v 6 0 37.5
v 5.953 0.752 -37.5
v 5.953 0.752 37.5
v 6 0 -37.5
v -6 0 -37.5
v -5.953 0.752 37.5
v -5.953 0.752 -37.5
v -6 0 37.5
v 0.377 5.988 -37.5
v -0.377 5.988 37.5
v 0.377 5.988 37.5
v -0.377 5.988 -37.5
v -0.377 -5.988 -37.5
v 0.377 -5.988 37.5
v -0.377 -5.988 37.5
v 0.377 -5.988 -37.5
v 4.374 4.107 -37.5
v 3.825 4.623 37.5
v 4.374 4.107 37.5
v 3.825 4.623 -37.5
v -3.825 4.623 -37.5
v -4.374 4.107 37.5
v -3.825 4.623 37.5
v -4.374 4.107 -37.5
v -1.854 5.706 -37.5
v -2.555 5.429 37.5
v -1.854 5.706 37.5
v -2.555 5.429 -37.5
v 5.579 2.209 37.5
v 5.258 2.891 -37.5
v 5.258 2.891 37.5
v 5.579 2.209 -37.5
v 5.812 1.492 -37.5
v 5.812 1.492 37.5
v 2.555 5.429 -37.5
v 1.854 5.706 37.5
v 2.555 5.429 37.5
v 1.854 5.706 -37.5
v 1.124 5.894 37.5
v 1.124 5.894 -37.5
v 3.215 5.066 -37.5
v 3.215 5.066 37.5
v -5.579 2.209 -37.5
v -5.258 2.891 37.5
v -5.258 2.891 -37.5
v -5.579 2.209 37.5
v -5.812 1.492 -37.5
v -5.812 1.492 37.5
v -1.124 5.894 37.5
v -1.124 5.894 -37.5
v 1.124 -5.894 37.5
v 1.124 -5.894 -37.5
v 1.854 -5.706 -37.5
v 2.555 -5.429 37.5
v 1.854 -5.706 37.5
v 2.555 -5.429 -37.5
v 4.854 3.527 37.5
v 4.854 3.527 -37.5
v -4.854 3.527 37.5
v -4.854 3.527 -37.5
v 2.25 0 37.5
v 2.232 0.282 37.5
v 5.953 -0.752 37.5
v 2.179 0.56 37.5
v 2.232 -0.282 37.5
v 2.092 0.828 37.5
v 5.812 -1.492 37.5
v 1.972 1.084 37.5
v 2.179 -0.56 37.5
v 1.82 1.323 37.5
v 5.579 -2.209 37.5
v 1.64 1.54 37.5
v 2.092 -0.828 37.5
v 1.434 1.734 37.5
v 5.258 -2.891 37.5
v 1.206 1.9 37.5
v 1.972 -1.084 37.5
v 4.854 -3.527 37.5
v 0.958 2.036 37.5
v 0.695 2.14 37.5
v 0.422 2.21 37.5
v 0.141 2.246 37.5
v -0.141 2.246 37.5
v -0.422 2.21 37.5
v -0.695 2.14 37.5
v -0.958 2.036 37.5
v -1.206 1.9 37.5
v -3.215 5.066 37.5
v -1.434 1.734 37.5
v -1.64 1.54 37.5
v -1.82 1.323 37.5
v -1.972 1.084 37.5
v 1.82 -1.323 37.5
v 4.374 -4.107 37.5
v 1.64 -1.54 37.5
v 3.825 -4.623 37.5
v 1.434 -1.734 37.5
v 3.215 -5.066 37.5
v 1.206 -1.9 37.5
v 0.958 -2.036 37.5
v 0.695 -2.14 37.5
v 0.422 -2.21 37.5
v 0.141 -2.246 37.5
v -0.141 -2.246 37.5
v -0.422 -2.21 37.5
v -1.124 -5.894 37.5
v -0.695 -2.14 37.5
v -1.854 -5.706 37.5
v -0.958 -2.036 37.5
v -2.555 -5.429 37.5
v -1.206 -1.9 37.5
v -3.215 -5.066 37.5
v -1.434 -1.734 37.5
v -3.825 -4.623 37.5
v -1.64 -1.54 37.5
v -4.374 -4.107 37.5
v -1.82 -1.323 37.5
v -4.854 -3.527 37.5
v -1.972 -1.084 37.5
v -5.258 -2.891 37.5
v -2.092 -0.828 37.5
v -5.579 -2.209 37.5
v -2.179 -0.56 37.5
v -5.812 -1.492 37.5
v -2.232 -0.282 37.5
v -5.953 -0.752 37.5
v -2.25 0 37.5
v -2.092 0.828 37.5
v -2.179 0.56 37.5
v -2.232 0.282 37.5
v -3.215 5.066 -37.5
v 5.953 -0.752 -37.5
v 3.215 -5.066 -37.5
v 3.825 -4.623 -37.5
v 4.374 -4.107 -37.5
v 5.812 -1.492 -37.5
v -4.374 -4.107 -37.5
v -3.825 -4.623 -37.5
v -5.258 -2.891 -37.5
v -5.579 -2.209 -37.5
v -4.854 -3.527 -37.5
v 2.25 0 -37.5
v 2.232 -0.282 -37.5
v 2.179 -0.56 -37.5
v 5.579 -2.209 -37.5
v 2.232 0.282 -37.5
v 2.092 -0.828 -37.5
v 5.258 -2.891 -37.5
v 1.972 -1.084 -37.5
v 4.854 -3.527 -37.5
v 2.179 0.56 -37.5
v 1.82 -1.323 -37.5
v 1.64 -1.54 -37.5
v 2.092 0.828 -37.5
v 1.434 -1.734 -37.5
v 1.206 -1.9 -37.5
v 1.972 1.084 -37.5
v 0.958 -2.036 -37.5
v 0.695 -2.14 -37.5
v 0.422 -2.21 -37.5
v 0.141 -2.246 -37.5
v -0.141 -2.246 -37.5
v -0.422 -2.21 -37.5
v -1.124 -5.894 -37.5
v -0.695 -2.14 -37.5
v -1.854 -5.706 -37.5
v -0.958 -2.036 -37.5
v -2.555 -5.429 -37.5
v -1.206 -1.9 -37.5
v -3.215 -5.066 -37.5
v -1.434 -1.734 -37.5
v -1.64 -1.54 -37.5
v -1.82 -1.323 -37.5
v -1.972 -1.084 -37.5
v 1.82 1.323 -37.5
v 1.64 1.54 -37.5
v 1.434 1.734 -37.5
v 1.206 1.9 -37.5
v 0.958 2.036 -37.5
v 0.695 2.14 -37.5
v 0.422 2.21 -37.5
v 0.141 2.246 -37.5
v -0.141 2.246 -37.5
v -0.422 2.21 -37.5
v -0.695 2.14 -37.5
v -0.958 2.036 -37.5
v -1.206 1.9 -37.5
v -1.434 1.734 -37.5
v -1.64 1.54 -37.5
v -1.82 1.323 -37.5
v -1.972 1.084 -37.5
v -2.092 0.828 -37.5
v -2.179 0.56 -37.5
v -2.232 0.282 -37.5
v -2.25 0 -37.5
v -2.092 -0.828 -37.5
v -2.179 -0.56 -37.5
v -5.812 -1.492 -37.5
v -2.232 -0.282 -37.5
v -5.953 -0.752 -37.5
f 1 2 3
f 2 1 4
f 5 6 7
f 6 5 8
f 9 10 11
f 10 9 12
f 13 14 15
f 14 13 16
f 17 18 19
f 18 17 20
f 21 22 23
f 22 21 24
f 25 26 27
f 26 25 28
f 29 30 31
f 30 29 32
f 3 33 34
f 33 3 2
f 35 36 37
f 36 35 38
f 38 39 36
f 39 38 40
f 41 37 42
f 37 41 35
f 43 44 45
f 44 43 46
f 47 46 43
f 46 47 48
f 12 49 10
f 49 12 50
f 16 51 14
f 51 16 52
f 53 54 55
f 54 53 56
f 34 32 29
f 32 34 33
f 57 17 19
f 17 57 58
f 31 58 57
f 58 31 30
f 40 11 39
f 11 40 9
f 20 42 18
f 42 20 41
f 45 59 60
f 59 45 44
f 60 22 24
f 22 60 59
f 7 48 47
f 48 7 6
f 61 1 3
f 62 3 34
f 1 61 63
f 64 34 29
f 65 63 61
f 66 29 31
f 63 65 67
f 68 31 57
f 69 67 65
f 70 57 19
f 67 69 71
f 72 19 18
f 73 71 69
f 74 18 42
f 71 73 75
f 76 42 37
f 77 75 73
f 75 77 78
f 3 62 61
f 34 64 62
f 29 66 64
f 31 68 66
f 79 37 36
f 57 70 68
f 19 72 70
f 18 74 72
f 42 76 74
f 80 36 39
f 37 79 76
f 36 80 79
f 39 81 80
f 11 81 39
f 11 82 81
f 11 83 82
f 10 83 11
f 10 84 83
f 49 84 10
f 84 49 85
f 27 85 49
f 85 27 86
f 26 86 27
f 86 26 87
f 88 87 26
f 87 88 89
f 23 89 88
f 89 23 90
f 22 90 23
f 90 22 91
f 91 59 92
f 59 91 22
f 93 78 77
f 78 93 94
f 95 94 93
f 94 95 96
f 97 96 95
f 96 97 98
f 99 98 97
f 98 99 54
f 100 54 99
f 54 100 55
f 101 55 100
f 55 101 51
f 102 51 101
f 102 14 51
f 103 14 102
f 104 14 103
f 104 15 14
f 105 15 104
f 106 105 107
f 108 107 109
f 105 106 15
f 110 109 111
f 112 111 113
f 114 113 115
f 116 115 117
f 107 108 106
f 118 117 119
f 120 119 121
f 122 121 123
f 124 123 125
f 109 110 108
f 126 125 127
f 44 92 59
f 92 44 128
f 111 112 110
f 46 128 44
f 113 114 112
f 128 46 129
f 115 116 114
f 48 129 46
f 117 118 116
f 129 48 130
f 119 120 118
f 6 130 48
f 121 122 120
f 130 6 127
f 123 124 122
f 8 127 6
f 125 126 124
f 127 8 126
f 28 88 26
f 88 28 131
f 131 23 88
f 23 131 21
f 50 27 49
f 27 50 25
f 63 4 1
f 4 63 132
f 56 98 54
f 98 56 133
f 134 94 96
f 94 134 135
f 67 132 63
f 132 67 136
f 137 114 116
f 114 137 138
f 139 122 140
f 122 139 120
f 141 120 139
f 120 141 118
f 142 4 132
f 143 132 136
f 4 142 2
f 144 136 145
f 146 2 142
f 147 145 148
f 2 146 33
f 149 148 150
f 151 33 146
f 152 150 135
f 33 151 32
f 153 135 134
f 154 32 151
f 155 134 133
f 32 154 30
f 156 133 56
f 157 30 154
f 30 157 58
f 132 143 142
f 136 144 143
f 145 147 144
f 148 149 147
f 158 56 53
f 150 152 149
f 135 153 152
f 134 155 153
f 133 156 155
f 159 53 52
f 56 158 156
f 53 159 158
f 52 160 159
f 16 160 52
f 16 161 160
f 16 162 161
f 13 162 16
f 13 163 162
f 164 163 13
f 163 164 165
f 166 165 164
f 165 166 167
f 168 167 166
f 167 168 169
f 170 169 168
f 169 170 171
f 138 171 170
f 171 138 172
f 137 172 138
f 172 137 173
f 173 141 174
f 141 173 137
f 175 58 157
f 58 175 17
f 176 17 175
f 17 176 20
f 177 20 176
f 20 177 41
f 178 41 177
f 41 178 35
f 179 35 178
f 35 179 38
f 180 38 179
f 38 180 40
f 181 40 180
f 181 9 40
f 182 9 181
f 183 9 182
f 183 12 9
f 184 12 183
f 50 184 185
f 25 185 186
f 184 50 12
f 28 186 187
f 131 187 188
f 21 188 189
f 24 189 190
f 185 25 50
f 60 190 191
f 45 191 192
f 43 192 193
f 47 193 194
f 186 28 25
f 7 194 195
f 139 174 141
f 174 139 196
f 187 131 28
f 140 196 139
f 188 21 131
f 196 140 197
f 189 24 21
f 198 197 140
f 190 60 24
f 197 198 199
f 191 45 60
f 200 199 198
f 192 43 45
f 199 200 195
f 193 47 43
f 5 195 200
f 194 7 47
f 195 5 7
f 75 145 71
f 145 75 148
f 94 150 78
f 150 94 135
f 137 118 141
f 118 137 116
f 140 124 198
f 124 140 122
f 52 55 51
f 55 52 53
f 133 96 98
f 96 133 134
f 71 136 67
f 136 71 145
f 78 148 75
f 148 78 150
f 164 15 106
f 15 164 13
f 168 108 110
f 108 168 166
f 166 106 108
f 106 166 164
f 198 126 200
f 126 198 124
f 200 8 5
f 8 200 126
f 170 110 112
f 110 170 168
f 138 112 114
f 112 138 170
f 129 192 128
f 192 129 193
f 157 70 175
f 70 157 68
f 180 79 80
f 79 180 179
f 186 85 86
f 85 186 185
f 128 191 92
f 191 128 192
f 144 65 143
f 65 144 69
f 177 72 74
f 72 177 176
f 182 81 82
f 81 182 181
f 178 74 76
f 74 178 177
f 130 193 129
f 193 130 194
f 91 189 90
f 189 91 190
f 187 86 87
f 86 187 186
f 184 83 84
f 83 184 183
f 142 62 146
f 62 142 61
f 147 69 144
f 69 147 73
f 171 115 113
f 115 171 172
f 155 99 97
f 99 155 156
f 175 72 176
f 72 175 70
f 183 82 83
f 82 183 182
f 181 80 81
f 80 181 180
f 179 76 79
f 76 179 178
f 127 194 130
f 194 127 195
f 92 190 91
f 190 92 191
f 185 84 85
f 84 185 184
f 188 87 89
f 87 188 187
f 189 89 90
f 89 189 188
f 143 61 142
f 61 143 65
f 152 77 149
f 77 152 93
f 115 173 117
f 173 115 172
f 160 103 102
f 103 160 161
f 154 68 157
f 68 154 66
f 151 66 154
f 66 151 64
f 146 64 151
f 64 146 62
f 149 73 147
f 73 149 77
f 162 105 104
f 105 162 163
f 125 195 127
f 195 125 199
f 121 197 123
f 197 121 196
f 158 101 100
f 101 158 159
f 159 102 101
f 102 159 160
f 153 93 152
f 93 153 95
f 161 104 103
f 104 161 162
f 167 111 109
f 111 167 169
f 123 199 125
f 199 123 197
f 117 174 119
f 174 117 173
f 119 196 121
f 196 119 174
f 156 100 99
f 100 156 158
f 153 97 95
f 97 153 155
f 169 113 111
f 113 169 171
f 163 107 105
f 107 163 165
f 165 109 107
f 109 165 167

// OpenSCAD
$fn = 50;


difference() {
	union() {
		translate(v = [0, 0, -37.5000000000]) {
			cylinder(h = 75, r = 6.0000000000);
		}
	}
	union() {
		translate(v = [0, 0, -100.0000000000]) {
			cylinder(h = 200, r = 2.2500000000);
		}
	}
}
